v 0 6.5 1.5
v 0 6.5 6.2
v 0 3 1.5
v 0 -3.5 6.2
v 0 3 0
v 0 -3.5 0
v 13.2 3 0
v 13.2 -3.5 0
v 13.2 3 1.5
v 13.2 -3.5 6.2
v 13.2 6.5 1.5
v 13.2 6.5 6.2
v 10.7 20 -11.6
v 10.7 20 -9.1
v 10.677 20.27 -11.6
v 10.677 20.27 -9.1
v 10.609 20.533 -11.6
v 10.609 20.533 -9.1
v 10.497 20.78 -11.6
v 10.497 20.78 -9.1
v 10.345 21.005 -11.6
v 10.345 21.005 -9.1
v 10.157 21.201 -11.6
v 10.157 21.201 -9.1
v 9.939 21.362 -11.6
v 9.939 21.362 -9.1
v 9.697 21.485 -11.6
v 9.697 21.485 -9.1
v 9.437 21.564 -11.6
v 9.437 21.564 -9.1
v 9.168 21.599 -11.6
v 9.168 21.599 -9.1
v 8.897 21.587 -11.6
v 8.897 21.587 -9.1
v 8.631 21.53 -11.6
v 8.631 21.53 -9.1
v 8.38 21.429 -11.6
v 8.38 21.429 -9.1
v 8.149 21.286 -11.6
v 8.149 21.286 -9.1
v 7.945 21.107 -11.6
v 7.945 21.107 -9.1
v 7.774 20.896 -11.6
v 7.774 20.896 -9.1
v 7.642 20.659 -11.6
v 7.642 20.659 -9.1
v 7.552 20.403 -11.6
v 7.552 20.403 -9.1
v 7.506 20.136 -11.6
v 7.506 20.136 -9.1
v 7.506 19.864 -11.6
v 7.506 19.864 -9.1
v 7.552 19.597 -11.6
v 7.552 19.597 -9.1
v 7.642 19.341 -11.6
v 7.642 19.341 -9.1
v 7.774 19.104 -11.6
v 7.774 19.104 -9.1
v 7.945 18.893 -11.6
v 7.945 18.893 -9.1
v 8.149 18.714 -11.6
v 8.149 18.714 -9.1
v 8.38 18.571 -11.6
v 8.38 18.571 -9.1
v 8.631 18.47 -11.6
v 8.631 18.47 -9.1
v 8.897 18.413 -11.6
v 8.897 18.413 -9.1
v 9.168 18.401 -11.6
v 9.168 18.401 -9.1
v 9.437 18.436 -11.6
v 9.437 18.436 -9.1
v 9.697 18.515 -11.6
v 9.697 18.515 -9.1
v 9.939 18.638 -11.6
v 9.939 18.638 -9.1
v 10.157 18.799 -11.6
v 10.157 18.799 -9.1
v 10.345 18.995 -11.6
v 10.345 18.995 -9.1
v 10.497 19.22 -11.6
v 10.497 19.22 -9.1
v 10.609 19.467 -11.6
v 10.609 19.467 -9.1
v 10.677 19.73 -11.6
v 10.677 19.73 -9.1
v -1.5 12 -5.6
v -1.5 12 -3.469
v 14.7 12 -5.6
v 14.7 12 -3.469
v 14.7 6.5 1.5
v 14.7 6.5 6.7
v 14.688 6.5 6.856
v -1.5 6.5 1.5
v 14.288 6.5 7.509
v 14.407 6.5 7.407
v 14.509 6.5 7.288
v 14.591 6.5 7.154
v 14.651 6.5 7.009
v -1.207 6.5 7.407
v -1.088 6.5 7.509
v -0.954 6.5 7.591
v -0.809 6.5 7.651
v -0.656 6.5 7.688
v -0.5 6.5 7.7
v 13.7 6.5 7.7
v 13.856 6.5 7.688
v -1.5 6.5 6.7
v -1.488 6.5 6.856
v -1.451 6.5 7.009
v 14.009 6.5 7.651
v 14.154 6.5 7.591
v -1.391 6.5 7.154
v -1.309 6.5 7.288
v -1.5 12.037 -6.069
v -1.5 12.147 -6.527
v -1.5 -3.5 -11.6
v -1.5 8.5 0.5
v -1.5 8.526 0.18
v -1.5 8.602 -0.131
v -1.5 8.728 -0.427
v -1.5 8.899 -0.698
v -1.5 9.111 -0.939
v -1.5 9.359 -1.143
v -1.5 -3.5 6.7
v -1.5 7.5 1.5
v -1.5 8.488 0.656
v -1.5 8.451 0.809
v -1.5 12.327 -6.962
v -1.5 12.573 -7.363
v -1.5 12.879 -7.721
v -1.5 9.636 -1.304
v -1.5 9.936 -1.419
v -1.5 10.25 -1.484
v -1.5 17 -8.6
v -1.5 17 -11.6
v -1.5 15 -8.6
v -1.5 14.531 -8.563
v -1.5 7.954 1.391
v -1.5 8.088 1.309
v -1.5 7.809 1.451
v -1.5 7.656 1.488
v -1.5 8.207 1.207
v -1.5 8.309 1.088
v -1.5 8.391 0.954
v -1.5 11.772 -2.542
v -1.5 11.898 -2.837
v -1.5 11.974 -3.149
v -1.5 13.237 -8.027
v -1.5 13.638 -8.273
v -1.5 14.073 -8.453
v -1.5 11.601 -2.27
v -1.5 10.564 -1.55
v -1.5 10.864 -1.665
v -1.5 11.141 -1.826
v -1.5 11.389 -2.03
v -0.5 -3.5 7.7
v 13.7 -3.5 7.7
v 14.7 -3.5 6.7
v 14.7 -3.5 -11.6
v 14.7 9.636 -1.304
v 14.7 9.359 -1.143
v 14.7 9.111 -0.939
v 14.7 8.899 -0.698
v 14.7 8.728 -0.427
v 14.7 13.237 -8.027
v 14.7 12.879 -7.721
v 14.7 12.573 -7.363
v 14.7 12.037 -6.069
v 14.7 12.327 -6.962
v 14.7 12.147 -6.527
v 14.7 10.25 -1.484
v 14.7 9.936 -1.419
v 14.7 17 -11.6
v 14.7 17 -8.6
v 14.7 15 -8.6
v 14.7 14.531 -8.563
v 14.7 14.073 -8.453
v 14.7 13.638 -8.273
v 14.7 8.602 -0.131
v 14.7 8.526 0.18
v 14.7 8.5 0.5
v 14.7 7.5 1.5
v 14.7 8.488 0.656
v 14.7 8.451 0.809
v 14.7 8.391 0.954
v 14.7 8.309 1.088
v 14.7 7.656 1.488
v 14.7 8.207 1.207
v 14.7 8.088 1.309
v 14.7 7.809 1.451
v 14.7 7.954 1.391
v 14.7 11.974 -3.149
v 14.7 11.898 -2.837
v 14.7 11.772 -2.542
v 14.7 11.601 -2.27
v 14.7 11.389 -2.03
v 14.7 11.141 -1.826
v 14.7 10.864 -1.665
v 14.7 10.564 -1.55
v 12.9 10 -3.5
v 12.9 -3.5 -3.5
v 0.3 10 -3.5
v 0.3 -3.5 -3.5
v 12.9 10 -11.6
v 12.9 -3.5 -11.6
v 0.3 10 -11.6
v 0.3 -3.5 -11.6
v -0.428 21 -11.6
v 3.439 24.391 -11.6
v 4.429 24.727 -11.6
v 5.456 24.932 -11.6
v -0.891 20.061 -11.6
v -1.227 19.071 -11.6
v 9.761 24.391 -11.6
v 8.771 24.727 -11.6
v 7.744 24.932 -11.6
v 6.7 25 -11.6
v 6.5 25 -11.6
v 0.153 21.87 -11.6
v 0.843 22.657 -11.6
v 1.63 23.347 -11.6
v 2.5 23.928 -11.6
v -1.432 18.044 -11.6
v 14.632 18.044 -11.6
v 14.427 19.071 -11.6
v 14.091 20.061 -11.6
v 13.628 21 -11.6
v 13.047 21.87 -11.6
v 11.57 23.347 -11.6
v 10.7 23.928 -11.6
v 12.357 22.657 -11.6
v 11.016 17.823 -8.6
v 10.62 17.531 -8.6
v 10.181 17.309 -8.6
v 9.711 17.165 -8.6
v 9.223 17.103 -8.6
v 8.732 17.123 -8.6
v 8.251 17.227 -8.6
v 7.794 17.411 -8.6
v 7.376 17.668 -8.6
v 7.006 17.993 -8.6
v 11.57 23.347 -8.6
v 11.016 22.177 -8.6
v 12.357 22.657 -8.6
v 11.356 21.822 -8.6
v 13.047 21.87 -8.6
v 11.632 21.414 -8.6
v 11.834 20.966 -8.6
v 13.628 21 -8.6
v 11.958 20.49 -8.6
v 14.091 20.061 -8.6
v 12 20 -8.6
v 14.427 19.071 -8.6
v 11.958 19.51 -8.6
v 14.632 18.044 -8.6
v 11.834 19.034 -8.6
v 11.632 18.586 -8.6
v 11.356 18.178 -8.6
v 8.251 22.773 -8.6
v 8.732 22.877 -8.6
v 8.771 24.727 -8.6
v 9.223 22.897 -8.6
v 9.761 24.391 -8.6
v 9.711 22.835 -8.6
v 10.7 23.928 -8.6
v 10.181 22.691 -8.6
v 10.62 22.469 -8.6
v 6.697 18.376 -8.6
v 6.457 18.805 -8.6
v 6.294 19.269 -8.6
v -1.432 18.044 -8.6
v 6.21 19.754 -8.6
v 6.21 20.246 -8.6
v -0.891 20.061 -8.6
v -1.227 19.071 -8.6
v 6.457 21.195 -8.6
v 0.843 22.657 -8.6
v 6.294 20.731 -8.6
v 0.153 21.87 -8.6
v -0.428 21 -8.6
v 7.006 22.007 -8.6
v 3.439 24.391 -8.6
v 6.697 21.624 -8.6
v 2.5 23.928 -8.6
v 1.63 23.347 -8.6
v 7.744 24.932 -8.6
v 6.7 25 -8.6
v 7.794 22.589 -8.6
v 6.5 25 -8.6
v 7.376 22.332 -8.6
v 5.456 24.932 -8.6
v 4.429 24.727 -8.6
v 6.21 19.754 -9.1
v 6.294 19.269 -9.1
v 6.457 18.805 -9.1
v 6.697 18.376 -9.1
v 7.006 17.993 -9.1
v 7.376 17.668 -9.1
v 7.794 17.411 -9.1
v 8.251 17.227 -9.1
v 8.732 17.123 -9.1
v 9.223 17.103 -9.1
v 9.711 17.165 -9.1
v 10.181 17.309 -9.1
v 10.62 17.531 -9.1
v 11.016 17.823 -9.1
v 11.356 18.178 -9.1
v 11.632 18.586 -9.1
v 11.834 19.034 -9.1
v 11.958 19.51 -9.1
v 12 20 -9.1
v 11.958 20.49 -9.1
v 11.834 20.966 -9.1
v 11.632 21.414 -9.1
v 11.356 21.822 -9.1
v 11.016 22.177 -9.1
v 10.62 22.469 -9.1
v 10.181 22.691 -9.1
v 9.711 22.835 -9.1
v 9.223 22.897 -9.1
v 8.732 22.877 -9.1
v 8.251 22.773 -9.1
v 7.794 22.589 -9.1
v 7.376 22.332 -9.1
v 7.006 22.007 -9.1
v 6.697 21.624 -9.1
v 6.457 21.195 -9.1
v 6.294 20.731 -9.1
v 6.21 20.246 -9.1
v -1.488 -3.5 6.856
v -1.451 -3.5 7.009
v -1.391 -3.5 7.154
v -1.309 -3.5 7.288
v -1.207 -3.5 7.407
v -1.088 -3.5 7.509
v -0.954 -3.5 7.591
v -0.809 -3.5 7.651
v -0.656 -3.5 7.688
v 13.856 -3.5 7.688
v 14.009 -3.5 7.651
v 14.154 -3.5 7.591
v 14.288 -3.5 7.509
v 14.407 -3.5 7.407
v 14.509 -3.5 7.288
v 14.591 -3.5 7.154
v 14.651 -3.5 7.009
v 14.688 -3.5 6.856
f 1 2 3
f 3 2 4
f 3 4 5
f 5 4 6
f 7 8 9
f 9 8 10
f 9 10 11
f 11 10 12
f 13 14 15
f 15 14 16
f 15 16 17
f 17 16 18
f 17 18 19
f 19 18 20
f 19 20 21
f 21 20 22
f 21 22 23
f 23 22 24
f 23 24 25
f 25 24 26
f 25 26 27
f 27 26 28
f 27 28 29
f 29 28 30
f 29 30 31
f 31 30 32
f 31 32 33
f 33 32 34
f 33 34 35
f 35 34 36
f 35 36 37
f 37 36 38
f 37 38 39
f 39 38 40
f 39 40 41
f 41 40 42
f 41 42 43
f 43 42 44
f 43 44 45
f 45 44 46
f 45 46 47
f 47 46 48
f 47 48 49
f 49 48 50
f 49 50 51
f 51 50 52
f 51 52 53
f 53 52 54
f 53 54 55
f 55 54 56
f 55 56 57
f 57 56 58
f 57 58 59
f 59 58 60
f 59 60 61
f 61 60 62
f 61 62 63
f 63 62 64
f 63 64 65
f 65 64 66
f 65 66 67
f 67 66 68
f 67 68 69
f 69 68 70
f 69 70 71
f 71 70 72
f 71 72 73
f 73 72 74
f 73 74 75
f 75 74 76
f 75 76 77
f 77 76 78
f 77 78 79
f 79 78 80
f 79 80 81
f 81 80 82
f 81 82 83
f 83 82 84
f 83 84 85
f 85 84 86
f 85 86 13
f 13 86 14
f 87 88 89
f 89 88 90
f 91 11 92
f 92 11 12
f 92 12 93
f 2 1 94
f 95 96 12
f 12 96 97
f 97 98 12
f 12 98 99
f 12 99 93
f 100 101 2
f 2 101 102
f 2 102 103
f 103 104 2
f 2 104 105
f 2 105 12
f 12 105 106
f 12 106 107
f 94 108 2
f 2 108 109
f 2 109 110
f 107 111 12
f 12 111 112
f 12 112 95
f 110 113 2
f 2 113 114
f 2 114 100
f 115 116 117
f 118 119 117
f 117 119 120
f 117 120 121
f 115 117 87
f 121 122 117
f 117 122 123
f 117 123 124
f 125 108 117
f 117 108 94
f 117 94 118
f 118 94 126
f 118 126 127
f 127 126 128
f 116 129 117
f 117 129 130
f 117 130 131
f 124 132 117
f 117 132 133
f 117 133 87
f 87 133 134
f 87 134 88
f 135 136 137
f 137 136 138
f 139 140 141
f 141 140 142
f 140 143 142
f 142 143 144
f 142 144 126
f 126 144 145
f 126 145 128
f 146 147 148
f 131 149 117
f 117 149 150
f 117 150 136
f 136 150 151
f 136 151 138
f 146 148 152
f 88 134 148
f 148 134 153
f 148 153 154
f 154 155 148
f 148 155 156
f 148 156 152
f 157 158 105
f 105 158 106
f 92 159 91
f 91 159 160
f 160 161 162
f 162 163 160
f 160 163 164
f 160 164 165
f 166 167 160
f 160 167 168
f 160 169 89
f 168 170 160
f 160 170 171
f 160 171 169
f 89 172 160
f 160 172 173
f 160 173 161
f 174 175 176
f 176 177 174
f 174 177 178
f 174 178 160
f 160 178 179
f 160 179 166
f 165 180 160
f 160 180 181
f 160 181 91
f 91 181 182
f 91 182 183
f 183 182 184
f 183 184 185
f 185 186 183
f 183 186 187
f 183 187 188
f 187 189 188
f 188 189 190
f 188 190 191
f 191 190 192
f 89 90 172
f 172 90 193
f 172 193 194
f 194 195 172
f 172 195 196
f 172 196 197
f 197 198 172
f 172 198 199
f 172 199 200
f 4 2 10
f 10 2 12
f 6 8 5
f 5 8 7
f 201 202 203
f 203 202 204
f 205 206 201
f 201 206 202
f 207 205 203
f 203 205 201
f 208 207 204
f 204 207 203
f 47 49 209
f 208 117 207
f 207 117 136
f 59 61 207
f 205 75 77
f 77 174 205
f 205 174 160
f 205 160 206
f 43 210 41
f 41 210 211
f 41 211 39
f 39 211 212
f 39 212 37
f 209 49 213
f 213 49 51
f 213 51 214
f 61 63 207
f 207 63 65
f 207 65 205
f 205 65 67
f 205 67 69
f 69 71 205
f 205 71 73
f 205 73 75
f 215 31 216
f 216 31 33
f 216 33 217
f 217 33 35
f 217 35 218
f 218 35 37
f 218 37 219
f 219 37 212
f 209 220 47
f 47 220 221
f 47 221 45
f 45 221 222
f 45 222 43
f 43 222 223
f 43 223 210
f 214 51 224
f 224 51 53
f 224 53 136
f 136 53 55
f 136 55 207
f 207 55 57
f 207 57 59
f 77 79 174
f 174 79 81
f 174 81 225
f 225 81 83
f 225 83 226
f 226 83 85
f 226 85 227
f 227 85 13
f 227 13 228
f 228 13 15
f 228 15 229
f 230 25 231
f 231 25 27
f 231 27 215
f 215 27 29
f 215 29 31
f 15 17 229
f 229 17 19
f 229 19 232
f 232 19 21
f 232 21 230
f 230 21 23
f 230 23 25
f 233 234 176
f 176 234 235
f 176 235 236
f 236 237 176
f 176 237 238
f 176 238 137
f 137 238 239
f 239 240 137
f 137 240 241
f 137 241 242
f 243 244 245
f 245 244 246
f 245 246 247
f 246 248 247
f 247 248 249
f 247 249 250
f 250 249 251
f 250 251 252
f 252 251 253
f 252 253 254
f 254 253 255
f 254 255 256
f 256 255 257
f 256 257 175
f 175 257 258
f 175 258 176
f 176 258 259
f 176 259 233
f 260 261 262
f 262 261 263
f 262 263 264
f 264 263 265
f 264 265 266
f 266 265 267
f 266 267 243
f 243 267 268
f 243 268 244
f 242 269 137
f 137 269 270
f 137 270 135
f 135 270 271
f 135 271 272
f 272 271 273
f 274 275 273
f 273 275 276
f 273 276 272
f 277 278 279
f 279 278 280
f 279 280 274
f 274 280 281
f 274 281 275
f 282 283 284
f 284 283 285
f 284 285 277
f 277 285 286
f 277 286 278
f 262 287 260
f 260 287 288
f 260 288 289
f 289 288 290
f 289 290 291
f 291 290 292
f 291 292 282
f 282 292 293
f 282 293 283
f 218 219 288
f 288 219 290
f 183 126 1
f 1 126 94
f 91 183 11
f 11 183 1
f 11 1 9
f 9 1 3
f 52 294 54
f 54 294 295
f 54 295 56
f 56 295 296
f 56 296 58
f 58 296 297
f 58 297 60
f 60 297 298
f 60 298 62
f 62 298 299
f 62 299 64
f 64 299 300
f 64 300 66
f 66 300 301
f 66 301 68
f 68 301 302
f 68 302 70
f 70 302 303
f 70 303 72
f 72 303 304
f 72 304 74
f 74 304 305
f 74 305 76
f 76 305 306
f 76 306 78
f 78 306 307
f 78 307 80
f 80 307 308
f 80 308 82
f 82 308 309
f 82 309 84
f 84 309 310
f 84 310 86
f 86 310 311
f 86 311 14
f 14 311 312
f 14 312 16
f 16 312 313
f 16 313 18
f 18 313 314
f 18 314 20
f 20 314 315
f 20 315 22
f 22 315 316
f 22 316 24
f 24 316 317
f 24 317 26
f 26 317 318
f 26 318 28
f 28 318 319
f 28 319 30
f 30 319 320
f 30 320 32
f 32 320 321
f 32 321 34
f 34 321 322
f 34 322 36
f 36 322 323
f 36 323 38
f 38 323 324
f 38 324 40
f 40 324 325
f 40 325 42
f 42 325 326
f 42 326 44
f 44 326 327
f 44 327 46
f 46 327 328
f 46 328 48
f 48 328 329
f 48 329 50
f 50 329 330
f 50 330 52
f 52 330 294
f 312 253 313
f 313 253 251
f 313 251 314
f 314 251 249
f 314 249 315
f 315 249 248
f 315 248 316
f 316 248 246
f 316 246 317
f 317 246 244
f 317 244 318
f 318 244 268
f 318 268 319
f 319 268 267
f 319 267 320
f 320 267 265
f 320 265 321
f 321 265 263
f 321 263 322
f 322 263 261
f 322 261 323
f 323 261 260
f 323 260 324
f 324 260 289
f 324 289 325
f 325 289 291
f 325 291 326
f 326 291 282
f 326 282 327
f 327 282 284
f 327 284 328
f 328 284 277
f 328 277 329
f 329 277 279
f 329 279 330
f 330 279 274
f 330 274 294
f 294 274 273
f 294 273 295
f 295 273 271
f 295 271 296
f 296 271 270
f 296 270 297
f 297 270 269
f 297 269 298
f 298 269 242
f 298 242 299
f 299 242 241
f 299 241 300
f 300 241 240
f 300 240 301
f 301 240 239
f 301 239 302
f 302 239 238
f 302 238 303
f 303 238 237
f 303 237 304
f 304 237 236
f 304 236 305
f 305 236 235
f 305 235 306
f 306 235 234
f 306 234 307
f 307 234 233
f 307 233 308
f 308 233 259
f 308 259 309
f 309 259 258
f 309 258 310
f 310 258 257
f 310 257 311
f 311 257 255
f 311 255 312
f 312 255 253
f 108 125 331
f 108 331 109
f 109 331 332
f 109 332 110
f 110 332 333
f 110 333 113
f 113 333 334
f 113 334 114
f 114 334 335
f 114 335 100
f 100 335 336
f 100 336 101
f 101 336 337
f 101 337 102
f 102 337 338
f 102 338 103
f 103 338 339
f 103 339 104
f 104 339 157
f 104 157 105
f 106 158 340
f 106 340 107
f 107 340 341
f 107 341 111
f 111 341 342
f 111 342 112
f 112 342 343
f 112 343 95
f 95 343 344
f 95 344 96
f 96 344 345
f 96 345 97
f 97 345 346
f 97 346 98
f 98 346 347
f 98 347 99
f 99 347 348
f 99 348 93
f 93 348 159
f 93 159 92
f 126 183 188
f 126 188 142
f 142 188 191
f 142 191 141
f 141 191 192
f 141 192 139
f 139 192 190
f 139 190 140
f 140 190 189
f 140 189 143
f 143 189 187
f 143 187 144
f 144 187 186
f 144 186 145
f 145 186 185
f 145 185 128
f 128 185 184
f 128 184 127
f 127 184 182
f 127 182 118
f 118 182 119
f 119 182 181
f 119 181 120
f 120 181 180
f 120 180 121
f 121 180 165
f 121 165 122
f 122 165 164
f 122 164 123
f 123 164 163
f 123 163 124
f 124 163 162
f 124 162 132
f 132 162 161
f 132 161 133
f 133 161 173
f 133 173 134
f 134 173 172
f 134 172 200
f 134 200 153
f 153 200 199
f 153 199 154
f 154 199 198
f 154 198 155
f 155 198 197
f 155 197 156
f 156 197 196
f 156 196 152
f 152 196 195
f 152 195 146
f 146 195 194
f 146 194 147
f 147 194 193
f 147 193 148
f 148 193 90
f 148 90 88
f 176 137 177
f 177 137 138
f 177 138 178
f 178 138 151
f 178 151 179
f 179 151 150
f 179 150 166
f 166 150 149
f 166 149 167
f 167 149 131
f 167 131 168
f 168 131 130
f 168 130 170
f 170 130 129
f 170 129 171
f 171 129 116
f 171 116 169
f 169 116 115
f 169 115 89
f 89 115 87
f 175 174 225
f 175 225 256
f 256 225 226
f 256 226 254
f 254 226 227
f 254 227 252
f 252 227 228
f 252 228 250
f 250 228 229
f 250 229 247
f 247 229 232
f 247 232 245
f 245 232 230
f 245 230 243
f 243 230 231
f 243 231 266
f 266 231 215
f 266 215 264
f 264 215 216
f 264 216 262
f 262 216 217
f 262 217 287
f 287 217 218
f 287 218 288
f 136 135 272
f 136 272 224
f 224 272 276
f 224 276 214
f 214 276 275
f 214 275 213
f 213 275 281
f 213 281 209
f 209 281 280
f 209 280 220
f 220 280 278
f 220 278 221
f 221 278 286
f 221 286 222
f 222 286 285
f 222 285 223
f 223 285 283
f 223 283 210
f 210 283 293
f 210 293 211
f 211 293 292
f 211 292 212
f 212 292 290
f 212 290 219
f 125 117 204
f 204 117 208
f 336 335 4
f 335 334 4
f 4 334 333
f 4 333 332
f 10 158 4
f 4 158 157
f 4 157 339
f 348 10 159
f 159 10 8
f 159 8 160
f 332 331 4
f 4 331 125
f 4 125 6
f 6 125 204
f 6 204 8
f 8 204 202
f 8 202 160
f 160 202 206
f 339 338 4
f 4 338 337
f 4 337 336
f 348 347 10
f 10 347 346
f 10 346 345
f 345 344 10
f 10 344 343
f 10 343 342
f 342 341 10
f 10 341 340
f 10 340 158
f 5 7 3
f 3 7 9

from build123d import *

# Parameters (mm, degrees)
CROQUIS2_W              = 16.2
CROQUIS2_H              = 9.2
CROQUIS2_W_2            = 13.2
CROQUIS2_H_2            = 6.2
SALIENTE_EXTRUIR1_DEPTH = 6.5
CROQUIS3_W              = 16.2
CROQUIS3_H              = 12
SALIENTE_EXTRUIR2_DEPTH = 2
SALIENTE_EXTRUIR3_DEPTH = 8.1
CROQUIS5_W              = 16.2
CROQUIS5_H              = 3
SALIENTE_EXTRUIR4_DEPTH = 13
CROQUIS6_R              = 1.6
CORTAR_EXTRUIR1_DEPTH   = 3
CROQUIS7_W              = 16.2
CROQUIS7_H              = 2
SALIENTE_EXTRUIR5_DEPTH = 3
CROQUIS8_R              = 2.9
CORTAR_EXTRUIR2_DEPTH   = 0.5
REDONDEO1_R             = 1
REDONDEO2_R             = 1
REDONDEO3_R             = 2
REDONDEO4_R             = 2
REDONDEO5_R             = 3
REDONDEO6_R             = 8
CROQUIS9_W              = 13.2
CROQUIS9_H              = 6.2
SALIENTE_EXTRUIR6_DEPTH = 3.5
CROQUIS10_W             = 13.2
CROQUIS10_H             = 1.5
SALIENTE_EXTRUIR7_DEPTH = 3.5


with BuildPart() as part:
    # Croquis2 → Saliente-Extruir1 (new body)
    with BuildSketch(Plane(origin=(0, 0, 0), x_dir=(1, 0, 0), z_dir=(0, 1, 0))):
        with Locations((6.6, -3.1)):
            Rectangle(CROQUIS2_W, CROQUIS2_H)
        with Locations((6.6, -3.1)):
            Rectangle(CROQUIS2_W_2, CROQUIS2_H_2, mode=Mode.SUBTRACT)
    extrude(amount=SALIENTE_EXTRUIR1_DEPTH)

    # Croquis3 → Saliente-Extruir2 (add)
    with BuildSketch(Plane(origin=(0, 0, -1.5), x_dir=(-1, 0, 0), z_dir=(0, 0, -1))):
        with Locations((-6.6, 6)):
            Rectangle(CROQUIS3_W, CROQUIS3_H)
    extrude(amount=SALIENTE_EXTRUIR2_DEPTH)

    # Croquis4 → Saliente-Extruir3 (add)
    with BuildSketch(Plane(origin=(0, 0, -3.5), x_dir=(-1, 0, 0), z_dir=(0, 0, -1))):
        Polygon((1.5, 0), (1.5, 12), (-14.7, 12), (-14.7, 0), (-12.9, 0), (-12.9, 10), (-0.3, 10), (-0.3, 0), align=None)
    extrude(amount=SALIENTE_EXTRUIR3_DEPTH)

    # Croquis5 → Saliente-Extruir4 (add)
    with BuildSketch(Plane(origin=(0, 12, 0), x_dir=(1, 0, 0), z_dir=(0, 1, 0))):
        with Locations((6.6, 10.1)):
            Rectangle(CROQUIS5_W, CROQUIS5_H)
    extrude(amount=SALIENTE_EXTRUIR4_DEPTH)

    # Croquis6 → Cortar-Extruir1 (cut)
    with BuildSketch(Plane.XY.offset(-8.6)):
        with Locations((9.1, 20)):
            Circle(CROQUIS6_R)
    extrude(amount=-CORTAR_EXTRUIR1_DEPTH, mode=Mode.SUBTRACT)

    # Croquis7 → Saliente-Extruir5 (add)
    with BuildSketch(Plane.XY.offset(-1.5)):
        with Locations((6.6, 7.5)):
            Rectangle(CROQUIS7_W, CROQUIS7_H)
    extrude(amount=SALIENTE_EXTRUIR5_DEPTH)

    # Croquis8 → Cortar-Extruir2 (cut)
    with BuildSketch(Plane.XY.offset(-8.6)):
        with Locations((9.1, 20)):
            Circle(CROQUIS8_R)
    extrude(amount=-CORTAR_EXTRUIR2_DEPTH, mode=Mode.SUBTRACT)

    # Redondeo1
    redondeo1_edges = [part.edges().sort_by_distance(p)[0] for p in [
        (14.7, 3.25, 7.7),
        (-1.5, 3.25, 7.7),
    ]]
    fillet(redondeo1_edges, radius=REDONDEO1_R)

    # Redondeo2
    redondeo2_edges = [part.edges().sort_by_distance(p)[0] for p in [
        (6.6, 8.5, 1.5),
    ]]
    fillet(redondeo2_edges, radius=REDONDEO2_R)

    # Redondeo3
    redondeo3_edges = [part.edges().sort_by_distance(p)[0] for p in [
        (6.6, 8.5, -1.5),
    ]]
    fillet(redondeo3_edges, radius=REDONDEO3_R - 0.0001)  # a hair under: the kernel refuses the full size

    # Redondeo4
    redondeo4_edges = [part.edges().sort_by_distance(p)[0] for p in [
        (6.6, 12, -1.5),
    ]]
    fillet(redondeo4_edges, radius=REDONDEO4_R)

    # Redondeo5
    redondeo5_edges = [part.edges().sort_by_distance(p)[0] for p in [
        (6.6, 12, -8.6),
    ]]
    fillet(redondeo5_edges, radius=REDONDEO5_R)

    # Redondeo6
    redondeo6_edges = [part.edges().sort_by_distance(p)[0] for p in [
        (14.7, 25, -10.1),
        (-1.5, 25, -10.1),
    ]]
    fillet(redondeo6_edges, radius=REDONDEO6_R)

    # Croquis9 → Saliente-Extruir6 (add)
    with BuildSketch(Plane.XZ):
        with BuildLine():
            Line((13.7, 7.7), (-0.5, 7.7))
            ThreePointArc((-0.5, 7.7), (-1.207106781, 7.407106781), (-1.5, 6.7))
            Line((-1.5, 6.7), (-1.5, -11.6))
            Line((-1.5, -11.6), (0.3, -11.6))
            Line((0.3, -11.6), (0.3, -3.5))
            Line((0.3, -3.5), (12.9, -3.5))
            Line((12.9, -3.5), (12.9, -11.6))
            Line((12.9, -11.6), (14.7, -11.6))
            Line((14.7, -11.6), (14.7, 6.7))
            ThreePointArc((14.7, 6.7), (14.407106781, 7.407106781), (13.7, 7.7))
        make_face()
        with Locations((6.6, 3.1)):
            Rectangle(CROQUIS9_W, CROQUIS9_H, mode=Mode.SUBTRACT)
    extrude(amount=SALIENTE_EXTRUIR6_DEPTH)

    # Croquis10 → Saliente-Extruir7 (add)
    with BuildSketch(Plane.XZ.offset(-6.5)):
        with Locations((6.6, 0.75)):
            Rectangle(CROQUIS10_W, CROQUIS10_H)
    extrude(amount=SALIENTE_EXTRUIR7_DEPTH)


solid = part.part
